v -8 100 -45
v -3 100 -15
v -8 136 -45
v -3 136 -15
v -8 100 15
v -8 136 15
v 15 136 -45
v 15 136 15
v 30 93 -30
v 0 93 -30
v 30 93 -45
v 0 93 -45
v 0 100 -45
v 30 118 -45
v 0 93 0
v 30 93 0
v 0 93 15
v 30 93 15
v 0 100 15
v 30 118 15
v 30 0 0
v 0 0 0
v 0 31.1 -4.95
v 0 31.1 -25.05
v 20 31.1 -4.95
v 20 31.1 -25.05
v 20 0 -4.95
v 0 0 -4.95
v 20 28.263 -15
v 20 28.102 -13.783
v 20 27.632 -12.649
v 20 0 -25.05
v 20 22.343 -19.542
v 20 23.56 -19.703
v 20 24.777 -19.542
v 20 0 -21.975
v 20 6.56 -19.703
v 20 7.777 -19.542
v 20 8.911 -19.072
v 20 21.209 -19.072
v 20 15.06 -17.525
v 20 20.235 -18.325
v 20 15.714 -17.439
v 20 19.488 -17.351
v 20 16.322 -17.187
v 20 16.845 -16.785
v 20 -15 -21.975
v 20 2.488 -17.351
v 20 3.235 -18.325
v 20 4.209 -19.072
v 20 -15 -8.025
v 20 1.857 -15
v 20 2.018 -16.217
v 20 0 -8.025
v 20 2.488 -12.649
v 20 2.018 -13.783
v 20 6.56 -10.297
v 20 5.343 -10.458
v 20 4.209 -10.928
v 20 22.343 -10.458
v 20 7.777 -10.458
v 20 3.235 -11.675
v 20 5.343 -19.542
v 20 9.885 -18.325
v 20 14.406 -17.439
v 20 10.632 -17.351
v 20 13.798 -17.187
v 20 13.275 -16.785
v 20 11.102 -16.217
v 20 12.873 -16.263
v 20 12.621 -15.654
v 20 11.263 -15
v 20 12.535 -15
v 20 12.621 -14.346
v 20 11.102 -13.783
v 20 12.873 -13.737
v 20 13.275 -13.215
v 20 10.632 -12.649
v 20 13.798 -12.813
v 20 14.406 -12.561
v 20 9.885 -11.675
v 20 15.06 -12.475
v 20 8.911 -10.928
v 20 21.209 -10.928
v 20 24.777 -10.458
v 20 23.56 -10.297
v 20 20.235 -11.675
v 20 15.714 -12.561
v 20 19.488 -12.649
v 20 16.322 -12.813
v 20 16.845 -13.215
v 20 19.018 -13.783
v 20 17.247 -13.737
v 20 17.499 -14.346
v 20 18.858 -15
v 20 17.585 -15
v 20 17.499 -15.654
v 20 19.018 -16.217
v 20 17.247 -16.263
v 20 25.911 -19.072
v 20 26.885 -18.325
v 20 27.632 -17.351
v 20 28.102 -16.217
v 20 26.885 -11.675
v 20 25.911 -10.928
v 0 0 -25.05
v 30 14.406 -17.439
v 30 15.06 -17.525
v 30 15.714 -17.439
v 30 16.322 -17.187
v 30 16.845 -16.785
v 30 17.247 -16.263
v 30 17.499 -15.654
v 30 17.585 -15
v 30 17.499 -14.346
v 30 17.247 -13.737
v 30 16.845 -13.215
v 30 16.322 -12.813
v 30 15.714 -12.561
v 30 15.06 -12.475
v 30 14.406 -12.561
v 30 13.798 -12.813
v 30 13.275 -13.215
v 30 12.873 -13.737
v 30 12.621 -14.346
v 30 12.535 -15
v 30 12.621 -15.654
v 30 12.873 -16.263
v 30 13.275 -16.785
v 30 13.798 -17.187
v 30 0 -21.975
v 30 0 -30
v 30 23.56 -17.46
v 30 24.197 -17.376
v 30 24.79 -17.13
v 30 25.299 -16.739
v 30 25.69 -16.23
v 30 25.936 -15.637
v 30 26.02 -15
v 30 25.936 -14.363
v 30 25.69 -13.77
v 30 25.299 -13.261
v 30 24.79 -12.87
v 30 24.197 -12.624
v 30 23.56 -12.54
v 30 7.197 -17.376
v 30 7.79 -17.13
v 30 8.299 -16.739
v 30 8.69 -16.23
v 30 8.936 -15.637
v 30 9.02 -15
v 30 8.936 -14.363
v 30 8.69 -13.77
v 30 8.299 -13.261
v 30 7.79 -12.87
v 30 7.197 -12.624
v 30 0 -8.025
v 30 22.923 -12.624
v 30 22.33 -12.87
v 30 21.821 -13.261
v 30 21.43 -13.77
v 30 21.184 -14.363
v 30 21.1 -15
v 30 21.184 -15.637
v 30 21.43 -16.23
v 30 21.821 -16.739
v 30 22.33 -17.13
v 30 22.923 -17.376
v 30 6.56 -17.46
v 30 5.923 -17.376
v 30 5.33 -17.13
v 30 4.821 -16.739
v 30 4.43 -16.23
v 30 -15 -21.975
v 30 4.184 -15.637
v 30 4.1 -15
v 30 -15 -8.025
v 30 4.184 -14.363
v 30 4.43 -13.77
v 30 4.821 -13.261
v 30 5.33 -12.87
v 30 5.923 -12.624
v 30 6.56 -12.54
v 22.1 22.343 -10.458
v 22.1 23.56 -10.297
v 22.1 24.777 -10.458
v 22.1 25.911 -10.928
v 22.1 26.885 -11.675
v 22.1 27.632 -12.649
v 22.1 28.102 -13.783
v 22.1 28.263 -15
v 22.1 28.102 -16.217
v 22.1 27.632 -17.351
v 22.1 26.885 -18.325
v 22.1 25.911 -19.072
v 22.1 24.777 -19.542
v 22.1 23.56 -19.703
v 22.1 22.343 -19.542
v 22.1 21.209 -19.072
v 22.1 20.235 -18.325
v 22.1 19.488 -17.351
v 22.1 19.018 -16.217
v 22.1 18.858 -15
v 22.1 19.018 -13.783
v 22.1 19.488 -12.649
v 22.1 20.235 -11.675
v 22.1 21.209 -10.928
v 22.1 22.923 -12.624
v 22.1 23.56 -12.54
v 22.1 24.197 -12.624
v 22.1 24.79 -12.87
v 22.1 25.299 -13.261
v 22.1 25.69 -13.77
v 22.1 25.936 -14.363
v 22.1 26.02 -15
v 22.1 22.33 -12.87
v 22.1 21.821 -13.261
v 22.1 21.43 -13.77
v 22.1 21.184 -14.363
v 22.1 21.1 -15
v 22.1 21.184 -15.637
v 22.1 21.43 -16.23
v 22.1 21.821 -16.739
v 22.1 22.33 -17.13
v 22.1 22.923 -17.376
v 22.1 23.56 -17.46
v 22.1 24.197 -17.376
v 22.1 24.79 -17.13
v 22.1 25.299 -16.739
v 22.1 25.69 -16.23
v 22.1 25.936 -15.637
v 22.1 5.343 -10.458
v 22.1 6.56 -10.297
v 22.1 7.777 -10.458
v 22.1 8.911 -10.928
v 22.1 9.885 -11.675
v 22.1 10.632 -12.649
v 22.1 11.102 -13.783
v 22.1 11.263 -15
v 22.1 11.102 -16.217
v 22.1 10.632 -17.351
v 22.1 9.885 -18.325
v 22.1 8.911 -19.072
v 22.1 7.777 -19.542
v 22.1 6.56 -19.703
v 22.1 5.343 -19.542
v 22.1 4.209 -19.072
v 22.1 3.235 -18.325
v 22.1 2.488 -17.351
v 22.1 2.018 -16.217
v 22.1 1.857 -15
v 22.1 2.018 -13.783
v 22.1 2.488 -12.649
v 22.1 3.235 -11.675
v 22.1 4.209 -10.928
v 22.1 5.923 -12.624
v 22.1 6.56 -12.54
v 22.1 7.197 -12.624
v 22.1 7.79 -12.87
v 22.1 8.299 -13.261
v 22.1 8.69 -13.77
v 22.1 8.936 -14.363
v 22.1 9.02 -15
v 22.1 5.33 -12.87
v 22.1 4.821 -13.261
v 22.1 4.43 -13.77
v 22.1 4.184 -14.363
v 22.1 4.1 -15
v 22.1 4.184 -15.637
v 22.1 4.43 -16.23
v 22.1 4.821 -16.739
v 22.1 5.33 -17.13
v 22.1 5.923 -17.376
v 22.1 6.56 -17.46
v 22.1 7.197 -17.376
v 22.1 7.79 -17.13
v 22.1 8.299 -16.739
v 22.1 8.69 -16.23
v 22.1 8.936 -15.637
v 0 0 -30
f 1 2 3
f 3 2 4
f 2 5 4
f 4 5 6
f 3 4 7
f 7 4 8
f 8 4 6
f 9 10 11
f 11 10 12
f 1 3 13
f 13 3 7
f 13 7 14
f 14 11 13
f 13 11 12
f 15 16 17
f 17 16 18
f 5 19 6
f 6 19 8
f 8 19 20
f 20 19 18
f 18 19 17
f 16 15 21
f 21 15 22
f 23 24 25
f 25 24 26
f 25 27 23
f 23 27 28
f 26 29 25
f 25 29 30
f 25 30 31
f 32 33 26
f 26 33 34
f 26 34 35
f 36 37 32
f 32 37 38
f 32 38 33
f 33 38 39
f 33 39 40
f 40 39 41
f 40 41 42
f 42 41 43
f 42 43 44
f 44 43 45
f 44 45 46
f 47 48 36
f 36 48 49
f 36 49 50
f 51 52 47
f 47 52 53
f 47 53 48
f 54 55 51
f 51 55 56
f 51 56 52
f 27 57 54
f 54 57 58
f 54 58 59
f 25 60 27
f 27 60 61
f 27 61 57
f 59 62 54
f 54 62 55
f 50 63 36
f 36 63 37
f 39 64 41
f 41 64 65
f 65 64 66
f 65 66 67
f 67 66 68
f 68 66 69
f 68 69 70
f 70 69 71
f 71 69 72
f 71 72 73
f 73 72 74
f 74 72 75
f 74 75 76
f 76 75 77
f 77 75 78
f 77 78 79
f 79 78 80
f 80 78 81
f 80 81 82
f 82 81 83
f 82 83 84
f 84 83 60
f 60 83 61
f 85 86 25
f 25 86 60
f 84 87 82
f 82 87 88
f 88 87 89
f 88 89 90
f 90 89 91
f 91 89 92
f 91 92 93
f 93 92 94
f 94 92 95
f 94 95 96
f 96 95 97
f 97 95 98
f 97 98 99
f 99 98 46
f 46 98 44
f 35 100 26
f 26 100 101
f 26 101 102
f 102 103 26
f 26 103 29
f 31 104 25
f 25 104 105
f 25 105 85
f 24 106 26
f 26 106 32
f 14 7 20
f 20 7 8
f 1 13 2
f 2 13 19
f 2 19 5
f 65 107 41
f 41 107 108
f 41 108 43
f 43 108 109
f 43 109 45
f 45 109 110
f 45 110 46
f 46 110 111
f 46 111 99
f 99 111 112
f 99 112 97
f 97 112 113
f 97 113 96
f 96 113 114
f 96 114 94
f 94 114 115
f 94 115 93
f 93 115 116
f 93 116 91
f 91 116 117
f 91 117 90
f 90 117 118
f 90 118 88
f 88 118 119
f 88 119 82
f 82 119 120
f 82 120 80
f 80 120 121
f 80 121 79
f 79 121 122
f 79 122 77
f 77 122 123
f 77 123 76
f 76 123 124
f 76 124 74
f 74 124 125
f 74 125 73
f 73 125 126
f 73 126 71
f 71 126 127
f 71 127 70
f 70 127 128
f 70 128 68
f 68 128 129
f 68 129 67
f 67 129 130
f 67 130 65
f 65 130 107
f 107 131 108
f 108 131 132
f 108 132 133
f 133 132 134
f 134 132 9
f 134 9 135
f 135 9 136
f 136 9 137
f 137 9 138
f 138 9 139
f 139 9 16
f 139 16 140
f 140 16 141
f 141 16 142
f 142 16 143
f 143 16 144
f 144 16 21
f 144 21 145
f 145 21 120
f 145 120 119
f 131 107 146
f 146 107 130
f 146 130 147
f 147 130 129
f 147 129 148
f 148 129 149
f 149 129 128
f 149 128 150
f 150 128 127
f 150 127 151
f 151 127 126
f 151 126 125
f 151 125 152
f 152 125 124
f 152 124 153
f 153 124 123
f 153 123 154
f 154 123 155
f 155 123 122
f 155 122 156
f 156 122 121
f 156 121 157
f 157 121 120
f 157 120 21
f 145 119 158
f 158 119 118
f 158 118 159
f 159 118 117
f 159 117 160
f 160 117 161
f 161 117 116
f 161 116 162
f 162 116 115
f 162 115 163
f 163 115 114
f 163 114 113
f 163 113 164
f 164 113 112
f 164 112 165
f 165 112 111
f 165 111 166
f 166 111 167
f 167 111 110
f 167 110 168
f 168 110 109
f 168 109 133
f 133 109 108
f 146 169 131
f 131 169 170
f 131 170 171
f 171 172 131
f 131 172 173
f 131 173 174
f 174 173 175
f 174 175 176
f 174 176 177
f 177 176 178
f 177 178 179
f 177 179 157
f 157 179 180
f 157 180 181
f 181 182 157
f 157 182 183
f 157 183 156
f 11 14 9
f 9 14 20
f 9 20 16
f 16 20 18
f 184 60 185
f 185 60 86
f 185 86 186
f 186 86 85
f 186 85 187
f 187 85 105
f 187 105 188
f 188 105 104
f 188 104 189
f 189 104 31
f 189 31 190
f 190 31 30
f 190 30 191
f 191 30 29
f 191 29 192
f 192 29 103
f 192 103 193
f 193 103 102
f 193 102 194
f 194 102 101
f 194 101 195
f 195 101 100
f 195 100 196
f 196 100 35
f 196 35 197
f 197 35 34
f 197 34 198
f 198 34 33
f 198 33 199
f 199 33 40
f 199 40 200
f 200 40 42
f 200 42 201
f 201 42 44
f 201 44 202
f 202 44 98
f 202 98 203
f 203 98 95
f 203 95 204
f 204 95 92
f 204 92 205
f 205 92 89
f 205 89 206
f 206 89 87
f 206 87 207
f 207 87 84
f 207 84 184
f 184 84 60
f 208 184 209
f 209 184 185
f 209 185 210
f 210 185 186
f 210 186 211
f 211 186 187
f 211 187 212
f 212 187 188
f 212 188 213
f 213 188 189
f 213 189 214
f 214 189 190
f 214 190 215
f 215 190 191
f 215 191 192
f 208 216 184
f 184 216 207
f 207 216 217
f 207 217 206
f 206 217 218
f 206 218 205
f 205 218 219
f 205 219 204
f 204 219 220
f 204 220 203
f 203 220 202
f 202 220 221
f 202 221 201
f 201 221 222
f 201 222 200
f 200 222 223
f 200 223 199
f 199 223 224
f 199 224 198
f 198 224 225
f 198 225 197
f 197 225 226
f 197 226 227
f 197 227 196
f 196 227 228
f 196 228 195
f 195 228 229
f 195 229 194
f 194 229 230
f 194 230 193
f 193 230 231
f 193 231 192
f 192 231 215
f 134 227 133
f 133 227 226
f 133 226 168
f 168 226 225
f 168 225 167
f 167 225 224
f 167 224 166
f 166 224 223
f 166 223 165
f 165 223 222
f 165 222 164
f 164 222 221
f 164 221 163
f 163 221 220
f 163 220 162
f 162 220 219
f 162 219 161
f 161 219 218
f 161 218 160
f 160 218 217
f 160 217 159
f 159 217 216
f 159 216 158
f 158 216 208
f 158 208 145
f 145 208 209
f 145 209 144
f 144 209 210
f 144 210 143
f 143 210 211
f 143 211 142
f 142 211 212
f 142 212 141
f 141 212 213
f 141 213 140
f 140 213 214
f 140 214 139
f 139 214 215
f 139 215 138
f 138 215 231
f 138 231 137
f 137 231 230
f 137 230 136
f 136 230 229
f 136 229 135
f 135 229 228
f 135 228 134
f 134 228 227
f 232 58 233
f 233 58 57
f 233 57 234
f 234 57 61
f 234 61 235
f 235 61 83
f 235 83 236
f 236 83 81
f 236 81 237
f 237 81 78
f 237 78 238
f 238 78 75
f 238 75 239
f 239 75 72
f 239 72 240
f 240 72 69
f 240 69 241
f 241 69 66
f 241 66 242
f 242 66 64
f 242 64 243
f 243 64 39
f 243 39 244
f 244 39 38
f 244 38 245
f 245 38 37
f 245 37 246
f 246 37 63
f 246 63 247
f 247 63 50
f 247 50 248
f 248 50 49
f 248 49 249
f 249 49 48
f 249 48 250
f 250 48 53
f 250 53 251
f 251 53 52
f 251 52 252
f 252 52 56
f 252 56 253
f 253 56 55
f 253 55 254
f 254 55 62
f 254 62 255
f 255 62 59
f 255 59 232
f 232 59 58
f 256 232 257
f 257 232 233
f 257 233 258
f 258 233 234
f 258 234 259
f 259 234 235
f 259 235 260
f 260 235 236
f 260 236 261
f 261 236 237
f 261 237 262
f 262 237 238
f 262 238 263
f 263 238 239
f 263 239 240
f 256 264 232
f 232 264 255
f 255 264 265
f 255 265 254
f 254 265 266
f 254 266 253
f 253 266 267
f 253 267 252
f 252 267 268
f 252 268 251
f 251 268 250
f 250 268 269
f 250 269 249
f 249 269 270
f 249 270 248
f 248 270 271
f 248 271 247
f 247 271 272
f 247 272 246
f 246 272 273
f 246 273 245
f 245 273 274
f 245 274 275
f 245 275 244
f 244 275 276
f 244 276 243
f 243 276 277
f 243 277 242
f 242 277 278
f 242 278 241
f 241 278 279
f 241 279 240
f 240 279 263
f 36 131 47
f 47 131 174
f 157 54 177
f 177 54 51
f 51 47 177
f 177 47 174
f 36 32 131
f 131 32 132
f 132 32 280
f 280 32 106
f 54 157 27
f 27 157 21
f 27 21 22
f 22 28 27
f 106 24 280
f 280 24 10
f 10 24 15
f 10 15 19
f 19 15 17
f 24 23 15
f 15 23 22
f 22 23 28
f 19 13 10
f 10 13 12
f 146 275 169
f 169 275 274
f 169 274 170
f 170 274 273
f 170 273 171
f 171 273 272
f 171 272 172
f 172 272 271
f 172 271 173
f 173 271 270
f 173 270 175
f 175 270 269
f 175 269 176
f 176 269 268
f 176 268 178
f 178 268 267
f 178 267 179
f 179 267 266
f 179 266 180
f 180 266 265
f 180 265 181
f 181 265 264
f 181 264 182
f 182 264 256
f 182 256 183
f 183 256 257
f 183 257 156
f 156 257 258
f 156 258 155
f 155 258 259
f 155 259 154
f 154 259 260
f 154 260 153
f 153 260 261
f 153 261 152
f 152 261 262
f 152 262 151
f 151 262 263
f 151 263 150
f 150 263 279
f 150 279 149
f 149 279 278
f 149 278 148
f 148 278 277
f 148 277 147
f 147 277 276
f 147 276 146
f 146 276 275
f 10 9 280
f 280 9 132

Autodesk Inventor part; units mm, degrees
ref_plane "YZ Plane" through (0, 0, 0) normal (1, 0, 0) x (0, 1, 0)
ref_plane "XZ Plane" through (0, 0, 0) normal (0, 1, 0) x (-1, 0, 0)
sketch "Sketch1" plane through (0, 0, 0) normal (0, 0, 1) x (1, 0, 0)
  line L0 (0, 0) -> (25, 0)
  line L1 (25, 0) -> (25, 40)
  line L2 (25, 40) -> (0, 40)
  line L3 (0, 40) -> (0, 0)
  dimension "d1" = 25
  dimension "d2" = 40
  dimension "d3" = 25
extrude "Extrusion1" add sketch "Sketch1" against normal blind 30
sketch "Sketch2" plane through (25, 0, 0) normal (1, 0, 0) x (0, 0, -1)
  line L0 (0, 0) -> (30, 0) projected
  circle A0 centre (15, 6.56) radius 2.46
extrude "Extrusion2" cut sketch "Sketch2" against normal blind 30
sketch "Sketch3" plane through (0, 0, 0) normal (-1, 0, 0) x (0, 0, 1)
  line L0 (0, 0) -> (-30, 0) projected
  line L1 (-25.05, 0) -> (-4.95, 0)
  line L2 (-4.95, 0) -> (-4.95, 33.12)
  line L3 (-4.95, 33.12) -> (-25.05, 33.12)
  line L4 (-25.05, 33.12) -> (-25.05, 0)
  dimension "d11" = 20.1
extrude "Extrusion3" cut sketch "Sketch3" against normal blind 20
sketch "Sketch4" plane through (0, 0, 0) normal (0, -1, 0) x (1, 0, 0)
  line L0 (20, -4.95) -> (20, -25.05) projected
  line L1 (20, -15) -> (25, -15)
  line L2 (25, 0) -> (25, -30) projected
  line L3 (20, -8.025) -> (25, -8.025)
  line L4 (25, -8.025) -> (25, -21.975)
  line L5 (25, -21.975) -> (20, -21.975)
  line L6 (20, -21.975) -> (20, -8.025)
  line L7 (20, -8.025) -> (25, -21.975) construction
  line L8 (25, -8.025) -> (20, -21.975) construction
  line L9 (25, -12.54) -> (25, -17.46) projected
  point P0 (0, 0)
  point P1 (22.5, -15)
  dimension "d14" = 13.95
extrude "Extrusion4" add sketch "Sketch4" along normal blind 15
sketch "Sketch5" plane through (20, 0, 0) normal (-1, 0, 0) x (0, 0, 1)
  circle A0 centre (-15, 6.56) radius 2.46 projected
  circle A1 centre (-15, 6.56) radius 4.7025
  circle A2 centre (-15, 6.56) radius 2.46 projected
  circle A3 centre (-15, 6.56) radius 2.46
  point P0 (0, 0)
  dimension "d17" = 9.405
extrude "Extrusion5" cut sketch "Sketch5" against normal blind 2.1
sketch "Sketch6" plane through (25, 0, 0) normal (1, 0, 0) x (0, 0, -1)
  circle A0 centre (15, 6.56) radius 4.7025 projected
  line L0 (15, 6.56) -> (15, 23.56)
  circle A1 centre (15, 23.56) radius 2.46
  point P0 (0, 0)
  dimension "d20" = 17
  dimension "d21" = 4.92
extrude "Extrusion6" cut sketch "Sketch6" against normal blind 10 contours A1
sketch "Sketch7" plane through (20, 0, 0) normal (-1, 0, 0) x (0, 0, 1)
  circle A0 centre (-15, 23.56) radius 2.46 projected
  circle A1 centre (-15, 23.56) radius 4.7025
  point P0 (0, 0)
  dimension "d24" = 9.405
extrude "Extrusion7" cut sketch "Sketch7" against normal blind 2.1
sketch "Sketch9" plane through (25, 0, 0) normal (1, 0, 0) x (0, 0, -1)
  circle A0 centre (15, 6.56) radius 2.46 projected
  circle A1 centre (15, 6.56) radius 2.46
  circle A2 centre (15, 23.56) radius 2.46 projected
  circle A3 centre (15, 23.56) radius 2.46
  line L0 (30, 40) -> (30, 0) projected
  line L1 (30, 0) -> (30, 40)
  line L2 (30, 40) -> (0, 40)
  line L3 (0, 40) -> (0, 0)
  line L4 (0, 0) -> (8.025, 0) projected
  line L5 (21.975, 0) -> (21.975, -15)
  line L6 (21.975, -15) -> (8.025, -15)
  line L7 (8.025, -15) -> (8.025, 0)
  line L8 (0, 0) -> (8.025, 0)
  line L9 (21.975, 0) -> (30, 0)
extrude "Extrusion8" add sketch "Sketch9" along normal blind 5
sketch "Sketch10" plane through (0, 40, 0) normal (0, 1, 0) x (1, 0, 0)
  line L0 (0, 30) -> (30, 30) projected
  line L1 (30, 0) -> (0, 0) projected
  line L2 (0, 30) -> (30, 30)
  line L3 (30, 30) -> (30, 0)
  line L4 (30, 0) -> (0, 0)
  line L5 (0, 0) -> (0, 30)
extrude "Extrusion9" add sketch "Sketch10" along normal blind 30
sketch "Sketch12" plane through (30, 0, 0) normal (1, 0, 0) x (0, 0, -1)
  circle A0 centre (15, 6.56) radius 2.46 projected
  line L0 (15, 6.56) -> (15, 15.06)
  circle A1 centre (15, 15.06) radius 2.525
  point P0 (0, 0)
  dimension "d31" = 8.5
  dimension "d33" = 5.05
extrude "Extrusion10" cut sketch "Sketch12" against normal blind 30 contours A1
sketch "Sketch14" plane through (0, 0, 0) normal (0, 0, 1) x (1, 0, 0)
  line L0 (30, 70) -> (0, 70) projected
  line L1 (0, 100) -> (-8, 100)
  line L2 (30, 0) -> (30, 70) projected
  line L3 (30, 118) -> (30, 70)
  line L4 (30, 105) -> (30, 100)
  line L5 (0, 70) -> (30, 70) projected
  line L6 (0, 70) -> (0, 100)
  line L7 (15, 136) -> (30, 118)
  line L8 (-8, 136) -> (15, 136)
  line L9 (-8, 100) -> (-8, 136)
  point P0 (0, 0)
  dimension "d47" = 30
extrude "Extrusion12" add sketch "Sketch14" against normal blind 30
sketch "Sketch15" plane through (0, 0, -25.05) normal (-1, 0, 0) x (0, 0, 1)
  line L0 (0, 33.12) -> (20.1, 33.12) projected
  line L1 (20.1, 33.12) -> (20.1, 0) projected
  line L2 (0, 33.12) -> (20.1, 33.12)
  line L3 (20.1, 33.12) -> (20.1, 31.1)
  line L4 (20.1, 31.1) -> (0, 31.1)
  line L5 (0, 31.1) -> (0, 33.12)
  point P0 (25.05, 0)
  dimension "d57" = 2.02
extrude "Extrusion13" add sketch "Sketch15" against normal blind 20
sketch "Sketch23" plane through (0, 0, 0) normal (0, 0, 1) x (1, 0, 0)
  line L0 (0, 100) -> (-8, 100) projected
  line L1 (-8, 136) -> (15, 136) projected
  line L2 (-8, 136) -> (15, 136)
  line L3 (30, 118) -> (15, 136) projected
  line L4 (15, 136) -> (30, 118)
  line L5 (30, 118) -> (30, 93)
  line L6 (30, 0) -> (30, 118) projected
  line L7 (30, 93) -> (0, 93)
  line L8 (0, 93) -> (0, 100)
  line L9 (-8, 100) -> (0, 100)
  line L10 (15, 136) -> (-8, 136) projected
  line L11 (-8, 136) -> (-8, 100)
  point P0 (0, 0)
  point P1 (-2, 102)
  point P2 (4, 118)
  point P3 (-2, 134)
  dimension "d85" = 25
extrude "Extrusion14" add sketch "Sketch23" along normal blind 15
ref_plane "Work Plane1" through (0, 0, -15) normal (0, 0, 1) x (1, 0, 0)
mirror "Mirror1" about plane through (0, 0, -15) normal (0, 0, 1) of "Extrusion14"
sketch "Sketch30" plane through (-8, 136, 15) normal (0, 1, 0) x (1, 0, 0)
  line L0 (0, 60) -> (0, 0) projected
  line L1 (0, 30) -> (5, 30)
  line L2 (5, 30) -> (0, 0)
  line L3 (5, 30) -> (0, 60)
  line L4 (0, 60) -> (0, 0)
  point P0 (8, 15)
  dimension "d105" = 5
extrude "Extrusion18" cut sketch "Sketch30" against normal through all
properties part number "orien_b_50mm"
